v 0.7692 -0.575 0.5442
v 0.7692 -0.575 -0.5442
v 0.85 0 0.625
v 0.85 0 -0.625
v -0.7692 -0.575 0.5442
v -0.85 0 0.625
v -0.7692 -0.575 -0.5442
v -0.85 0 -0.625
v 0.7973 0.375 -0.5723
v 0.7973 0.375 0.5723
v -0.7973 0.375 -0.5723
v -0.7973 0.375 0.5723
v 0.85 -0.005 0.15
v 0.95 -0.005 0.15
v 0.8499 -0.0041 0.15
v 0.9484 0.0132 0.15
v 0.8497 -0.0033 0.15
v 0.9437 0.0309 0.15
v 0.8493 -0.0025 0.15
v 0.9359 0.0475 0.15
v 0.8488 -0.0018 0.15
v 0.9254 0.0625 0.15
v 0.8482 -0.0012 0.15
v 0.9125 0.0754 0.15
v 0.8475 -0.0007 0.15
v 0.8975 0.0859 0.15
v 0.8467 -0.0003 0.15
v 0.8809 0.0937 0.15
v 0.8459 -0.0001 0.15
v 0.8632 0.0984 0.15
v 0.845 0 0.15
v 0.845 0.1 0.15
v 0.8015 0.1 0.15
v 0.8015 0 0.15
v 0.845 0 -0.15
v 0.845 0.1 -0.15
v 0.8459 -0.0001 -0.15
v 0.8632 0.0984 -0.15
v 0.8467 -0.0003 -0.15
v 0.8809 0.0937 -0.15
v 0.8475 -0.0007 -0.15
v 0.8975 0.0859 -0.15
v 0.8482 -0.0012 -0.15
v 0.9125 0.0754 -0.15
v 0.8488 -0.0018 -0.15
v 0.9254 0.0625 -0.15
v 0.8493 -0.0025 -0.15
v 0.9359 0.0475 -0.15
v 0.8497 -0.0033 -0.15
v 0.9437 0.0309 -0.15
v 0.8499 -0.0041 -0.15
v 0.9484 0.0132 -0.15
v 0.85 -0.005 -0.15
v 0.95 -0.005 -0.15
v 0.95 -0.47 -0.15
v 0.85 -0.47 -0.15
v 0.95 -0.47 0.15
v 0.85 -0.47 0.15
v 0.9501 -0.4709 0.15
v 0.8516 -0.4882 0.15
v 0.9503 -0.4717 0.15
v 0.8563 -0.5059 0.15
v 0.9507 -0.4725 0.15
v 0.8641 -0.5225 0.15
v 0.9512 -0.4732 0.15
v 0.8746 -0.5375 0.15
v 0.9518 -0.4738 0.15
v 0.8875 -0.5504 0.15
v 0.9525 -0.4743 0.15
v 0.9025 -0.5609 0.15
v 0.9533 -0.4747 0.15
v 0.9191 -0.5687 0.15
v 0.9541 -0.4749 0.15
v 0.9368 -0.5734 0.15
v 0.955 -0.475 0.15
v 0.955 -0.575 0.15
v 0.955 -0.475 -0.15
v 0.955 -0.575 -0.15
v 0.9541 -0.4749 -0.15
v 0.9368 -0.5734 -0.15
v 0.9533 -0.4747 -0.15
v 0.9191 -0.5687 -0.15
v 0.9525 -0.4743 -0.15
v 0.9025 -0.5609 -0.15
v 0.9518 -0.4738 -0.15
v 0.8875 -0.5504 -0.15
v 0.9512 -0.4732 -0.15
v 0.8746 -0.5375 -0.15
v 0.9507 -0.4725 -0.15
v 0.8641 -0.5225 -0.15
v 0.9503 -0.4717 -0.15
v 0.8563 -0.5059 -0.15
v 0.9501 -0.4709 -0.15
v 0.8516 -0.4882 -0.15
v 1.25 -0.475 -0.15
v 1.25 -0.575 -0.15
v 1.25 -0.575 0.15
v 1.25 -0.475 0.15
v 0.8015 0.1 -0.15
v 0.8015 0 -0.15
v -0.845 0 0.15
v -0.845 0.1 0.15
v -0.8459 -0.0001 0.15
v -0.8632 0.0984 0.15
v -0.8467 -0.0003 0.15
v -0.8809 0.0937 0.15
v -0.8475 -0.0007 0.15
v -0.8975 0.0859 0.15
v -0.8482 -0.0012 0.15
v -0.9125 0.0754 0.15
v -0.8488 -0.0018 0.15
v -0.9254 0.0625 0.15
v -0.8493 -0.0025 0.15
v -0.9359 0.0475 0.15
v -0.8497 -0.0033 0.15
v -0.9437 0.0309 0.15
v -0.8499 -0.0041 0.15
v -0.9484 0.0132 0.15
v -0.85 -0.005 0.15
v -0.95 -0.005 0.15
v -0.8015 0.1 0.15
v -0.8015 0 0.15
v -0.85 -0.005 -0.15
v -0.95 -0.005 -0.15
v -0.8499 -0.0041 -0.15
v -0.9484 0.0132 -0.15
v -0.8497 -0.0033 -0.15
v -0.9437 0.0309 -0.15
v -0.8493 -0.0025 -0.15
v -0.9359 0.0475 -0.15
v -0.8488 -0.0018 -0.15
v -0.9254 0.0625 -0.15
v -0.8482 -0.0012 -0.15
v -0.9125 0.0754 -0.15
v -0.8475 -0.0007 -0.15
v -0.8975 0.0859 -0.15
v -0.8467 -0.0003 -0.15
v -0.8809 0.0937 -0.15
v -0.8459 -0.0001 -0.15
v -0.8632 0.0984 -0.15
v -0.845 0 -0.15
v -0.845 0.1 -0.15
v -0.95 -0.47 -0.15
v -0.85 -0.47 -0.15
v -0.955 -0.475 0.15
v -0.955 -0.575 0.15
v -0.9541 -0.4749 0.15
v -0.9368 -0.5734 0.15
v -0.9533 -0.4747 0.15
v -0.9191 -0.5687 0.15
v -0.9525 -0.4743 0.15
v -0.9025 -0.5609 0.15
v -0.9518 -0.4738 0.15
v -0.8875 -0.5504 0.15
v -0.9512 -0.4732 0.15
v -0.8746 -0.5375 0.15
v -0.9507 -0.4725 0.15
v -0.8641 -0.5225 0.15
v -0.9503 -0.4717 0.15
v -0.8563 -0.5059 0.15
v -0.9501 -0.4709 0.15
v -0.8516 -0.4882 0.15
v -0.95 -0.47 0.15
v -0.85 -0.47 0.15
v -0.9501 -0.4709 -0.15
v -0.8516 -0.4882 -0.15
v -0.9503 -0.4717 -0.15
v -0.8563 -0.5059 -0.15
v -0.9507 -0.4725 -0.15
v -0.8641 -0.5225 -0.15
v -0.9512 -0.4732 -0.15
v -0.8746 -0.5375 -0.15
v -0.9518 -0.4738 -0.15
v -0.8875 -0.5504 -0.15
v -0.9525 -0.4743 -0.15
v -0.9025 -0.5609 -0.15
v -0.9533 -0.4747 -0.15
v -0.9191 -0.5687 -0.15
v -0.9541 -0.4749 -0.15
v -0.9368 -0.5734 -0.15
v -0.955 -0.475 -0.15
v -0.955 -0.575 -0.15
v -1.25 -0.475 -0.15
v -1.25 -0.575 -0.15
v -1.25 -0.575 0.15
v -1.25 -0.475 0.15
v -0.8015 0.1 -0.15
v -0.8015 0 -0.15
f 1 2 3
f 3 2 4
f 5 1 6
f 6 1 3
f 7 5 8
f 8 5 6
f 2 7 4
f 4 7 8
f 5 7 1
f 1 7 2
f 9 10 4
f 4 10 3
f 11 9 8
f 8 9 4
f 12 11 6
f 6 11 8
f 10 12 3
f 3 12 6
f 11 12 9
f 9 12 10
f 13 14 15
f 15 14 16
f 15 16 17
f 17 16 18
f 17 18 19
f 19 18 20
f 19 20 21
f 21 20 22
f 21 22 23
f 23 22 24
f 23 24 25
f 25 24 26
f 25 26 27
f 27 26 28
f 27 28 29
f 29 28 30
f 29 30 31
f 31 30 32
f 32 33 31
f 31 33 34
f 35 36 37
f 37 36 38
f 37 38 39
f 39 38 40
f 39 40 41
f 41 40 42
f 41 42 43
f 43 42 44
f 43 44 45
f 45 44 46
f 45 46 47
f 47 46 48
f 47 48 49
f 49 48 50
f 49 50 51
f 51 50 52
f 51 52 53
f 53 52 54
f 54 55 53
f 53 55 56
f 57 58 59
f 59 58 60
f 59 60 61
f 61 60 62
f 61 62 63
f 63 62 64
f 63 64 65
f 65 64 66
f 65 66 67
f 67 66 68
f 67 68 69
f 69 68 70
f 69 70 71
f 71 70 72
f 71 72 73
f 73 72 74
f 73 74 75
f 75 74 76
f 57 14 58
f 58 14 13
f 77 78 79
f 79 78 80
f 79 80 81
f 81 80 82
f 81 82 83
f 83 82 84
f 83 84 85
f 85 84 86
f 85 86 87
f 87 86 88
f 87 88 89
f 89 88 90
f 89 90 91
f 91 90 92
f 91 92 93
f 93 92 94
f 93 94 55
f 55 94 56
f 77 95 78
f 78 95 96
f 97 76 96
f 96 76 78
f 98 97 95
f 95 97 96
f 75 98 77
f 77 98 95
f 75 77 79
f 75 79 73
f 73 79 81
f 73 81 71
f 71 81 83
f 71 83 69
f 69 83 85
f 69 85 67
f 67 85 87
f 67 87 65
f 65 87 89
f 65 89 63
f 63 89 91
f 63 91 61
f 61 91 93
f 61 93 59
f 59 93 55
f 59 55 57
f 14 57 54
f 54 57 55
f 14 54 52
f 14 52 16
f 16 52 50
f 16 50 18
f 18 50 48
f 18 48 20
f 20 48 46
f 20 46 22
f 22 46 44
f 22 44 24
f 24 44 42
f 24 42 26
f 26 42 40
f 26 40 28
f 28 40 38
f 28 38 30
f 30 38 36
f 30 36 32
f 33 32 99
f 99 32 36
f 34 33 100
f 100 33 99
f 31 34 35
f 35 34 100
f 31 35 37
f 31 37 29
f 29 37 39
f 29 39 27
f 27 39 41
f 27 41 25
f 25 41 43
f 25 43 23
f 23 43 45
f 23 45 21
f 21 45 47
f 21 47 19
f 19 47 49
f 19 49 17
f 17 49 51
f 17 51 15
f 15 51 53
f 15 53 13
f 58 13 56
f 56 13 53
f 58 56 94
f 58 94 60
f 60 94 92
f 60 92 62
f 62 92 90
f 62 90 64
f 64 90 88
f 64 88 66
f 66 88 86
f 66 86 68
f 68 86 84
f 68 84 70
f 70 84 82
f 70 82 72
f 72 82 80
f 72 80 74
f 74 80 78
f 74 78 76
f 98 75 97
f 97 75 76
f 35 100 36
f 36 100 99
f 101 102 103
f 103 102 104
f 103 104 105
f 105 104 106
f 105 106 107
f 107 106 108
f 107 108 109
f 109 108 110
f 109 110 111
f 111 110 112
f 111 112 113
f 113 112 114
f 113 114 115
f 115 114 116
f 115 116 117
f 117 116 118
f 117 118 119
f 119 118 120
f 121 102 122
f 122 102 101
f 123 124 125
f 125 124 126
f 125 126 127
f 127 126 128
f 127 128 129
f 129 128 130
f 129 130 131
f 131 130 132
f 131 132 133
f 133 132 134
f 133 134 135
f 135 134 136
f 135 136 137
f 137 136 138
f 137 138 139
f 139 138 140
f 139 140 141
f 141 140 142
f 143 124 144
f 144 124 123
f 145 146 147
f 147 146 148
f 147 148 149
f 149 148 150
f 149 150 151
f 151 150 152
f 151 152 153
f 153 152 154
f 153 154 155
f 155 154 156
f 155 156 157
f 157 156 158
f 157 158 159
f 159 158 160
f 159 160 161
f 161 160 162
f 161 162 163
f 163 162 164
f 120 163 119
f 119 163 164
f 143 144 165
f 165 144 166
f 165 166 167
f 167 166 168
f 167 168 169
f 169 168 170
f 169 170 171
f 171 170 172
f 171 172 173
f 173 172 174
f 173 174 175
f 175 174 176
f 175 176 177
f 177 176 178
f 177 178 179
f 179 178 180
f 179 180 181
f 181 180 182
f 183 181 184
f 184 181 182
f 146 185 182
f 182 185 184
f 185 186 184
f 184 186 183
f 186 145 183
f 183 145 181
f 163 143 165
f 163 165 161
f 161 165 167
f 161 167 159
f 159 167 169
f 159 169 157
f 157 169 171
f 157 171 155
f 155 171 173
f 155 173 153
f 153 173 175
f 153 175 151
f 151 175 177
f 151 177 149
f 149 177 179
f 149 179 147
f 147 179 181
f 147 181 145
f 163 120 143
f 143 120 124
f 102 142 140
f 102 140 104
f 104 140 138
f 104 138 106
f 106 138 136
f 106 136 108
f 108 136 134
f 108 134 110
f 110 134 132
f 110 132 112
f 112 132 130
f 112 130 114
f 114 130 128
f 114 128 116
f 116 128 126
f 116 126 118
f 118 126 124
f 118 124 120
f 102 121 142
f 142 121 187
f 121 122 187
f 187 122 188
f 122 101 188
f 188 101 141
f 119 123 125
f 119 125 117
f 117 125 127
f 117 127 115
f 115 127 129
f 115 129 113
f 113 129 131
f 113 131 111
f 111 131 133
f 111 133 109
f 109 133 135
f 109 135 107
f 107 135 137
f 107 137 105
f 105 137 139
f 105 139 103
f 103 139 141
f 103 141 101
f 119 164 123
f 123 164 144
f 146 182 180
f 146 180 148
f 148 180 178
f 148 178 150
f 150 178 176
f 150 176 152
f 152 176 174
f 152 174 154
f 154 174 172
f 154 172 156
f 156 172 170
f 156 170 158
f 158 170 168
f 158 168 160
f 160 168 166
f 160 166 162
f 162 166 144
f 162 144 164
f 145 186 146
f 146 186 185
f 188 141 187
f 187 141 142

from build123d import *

# Parameters (mm, degrees)
SKETCH1_W                     = 1.7
SKETCH1_H                     = 1.25
BOSS_EXTRUDE1_DEPTH           = 0.375
BOSS_EXTRUDE1_TAPER           = 8
BOSS_EXTRUDE1_OTHER_WAY_DEPTH = 0.575
BOSS_EXTRUDE1_OTHER_WAY_TAPER = 8
BASE_FLANGE1_DEPTH            = 0.15


# Sheet-metal steps are written as plain solids
with BuildPart() as part:
    # Sketch1 → Boss-Extrude1 (new body)
    with BuildSketch(Plane(origin=(0, 0, 0), x_dir=(1, 0, 0), z_dir=(0, 1, 0))):
        Rectangle(SKETCH1_W, SKETCH1_H)
    extrude(amount=BOSS_EXTRUDE1_DEPTH, taper=BOSS_EXTRUDE1_TAPER)

    # Sketch1 → Boss-Extrude1 other way (add)
    with BuildSketch(Plane(origin=(0, 0, 0), x_dir=(1, 0, 0), z_dir=(0, 1, 0))):
        Rectangle(SKETCH1_W, SKETCH1_H)
    extrude(amount=-BOSS_EXTRUDE1_OTHER_WAY_DEPTH, taper=BOSS_EXTRUDE1_OTHER_WAY_TAPER)


with BuildPart() as body_2:
    # Sketch2 → Base-Flange1 (new, symmetric)
    with BuildSketch(Plane.XY):
        with BuildLine():
            Line((0.801508234, 0), (0.845, 0))
            ThreePointArc((0.845, 0), (0.848535534, -0.001464466), (0.85, -0.005))
            Line((0.85, -0.005), (0.85, -0.47))
            ThreePointArc((0.85, -0.47), (0.880753788, -0.544246212), (0.955, -0.575))
            Line((0.955, -0.575), (1.25, -0.575))
            Line((1.25, -0.575), (1.25, -0.475))
            Line((1.25, -0.475), (0.955, -0.475))
            ThreePointArc((0.955, -0.475), (0.951464466, -0.473535534), (0.95, -0.47))
            Line((0.95, -0.47), (0.95, -0.005))
            ThreePointArc((0.95, -0.005), (0.919246212, 0.069246212), (0.845, 0.1))
            Line((0.845, 0.1), (0.801508234, 0.1))
            Line((0.801508234, 0.1), (0.801508234, 0))
        make_face()
    extrude(amount=BASE_FLANGE1_DEPTH, both=True)


with BuildPart() as body_3:
    # Mirror1: mirrored copy
    add(body_2.part.mirror(Plane.ZY))


solid = Compound([part.part, body_2.part, body_3.part])
